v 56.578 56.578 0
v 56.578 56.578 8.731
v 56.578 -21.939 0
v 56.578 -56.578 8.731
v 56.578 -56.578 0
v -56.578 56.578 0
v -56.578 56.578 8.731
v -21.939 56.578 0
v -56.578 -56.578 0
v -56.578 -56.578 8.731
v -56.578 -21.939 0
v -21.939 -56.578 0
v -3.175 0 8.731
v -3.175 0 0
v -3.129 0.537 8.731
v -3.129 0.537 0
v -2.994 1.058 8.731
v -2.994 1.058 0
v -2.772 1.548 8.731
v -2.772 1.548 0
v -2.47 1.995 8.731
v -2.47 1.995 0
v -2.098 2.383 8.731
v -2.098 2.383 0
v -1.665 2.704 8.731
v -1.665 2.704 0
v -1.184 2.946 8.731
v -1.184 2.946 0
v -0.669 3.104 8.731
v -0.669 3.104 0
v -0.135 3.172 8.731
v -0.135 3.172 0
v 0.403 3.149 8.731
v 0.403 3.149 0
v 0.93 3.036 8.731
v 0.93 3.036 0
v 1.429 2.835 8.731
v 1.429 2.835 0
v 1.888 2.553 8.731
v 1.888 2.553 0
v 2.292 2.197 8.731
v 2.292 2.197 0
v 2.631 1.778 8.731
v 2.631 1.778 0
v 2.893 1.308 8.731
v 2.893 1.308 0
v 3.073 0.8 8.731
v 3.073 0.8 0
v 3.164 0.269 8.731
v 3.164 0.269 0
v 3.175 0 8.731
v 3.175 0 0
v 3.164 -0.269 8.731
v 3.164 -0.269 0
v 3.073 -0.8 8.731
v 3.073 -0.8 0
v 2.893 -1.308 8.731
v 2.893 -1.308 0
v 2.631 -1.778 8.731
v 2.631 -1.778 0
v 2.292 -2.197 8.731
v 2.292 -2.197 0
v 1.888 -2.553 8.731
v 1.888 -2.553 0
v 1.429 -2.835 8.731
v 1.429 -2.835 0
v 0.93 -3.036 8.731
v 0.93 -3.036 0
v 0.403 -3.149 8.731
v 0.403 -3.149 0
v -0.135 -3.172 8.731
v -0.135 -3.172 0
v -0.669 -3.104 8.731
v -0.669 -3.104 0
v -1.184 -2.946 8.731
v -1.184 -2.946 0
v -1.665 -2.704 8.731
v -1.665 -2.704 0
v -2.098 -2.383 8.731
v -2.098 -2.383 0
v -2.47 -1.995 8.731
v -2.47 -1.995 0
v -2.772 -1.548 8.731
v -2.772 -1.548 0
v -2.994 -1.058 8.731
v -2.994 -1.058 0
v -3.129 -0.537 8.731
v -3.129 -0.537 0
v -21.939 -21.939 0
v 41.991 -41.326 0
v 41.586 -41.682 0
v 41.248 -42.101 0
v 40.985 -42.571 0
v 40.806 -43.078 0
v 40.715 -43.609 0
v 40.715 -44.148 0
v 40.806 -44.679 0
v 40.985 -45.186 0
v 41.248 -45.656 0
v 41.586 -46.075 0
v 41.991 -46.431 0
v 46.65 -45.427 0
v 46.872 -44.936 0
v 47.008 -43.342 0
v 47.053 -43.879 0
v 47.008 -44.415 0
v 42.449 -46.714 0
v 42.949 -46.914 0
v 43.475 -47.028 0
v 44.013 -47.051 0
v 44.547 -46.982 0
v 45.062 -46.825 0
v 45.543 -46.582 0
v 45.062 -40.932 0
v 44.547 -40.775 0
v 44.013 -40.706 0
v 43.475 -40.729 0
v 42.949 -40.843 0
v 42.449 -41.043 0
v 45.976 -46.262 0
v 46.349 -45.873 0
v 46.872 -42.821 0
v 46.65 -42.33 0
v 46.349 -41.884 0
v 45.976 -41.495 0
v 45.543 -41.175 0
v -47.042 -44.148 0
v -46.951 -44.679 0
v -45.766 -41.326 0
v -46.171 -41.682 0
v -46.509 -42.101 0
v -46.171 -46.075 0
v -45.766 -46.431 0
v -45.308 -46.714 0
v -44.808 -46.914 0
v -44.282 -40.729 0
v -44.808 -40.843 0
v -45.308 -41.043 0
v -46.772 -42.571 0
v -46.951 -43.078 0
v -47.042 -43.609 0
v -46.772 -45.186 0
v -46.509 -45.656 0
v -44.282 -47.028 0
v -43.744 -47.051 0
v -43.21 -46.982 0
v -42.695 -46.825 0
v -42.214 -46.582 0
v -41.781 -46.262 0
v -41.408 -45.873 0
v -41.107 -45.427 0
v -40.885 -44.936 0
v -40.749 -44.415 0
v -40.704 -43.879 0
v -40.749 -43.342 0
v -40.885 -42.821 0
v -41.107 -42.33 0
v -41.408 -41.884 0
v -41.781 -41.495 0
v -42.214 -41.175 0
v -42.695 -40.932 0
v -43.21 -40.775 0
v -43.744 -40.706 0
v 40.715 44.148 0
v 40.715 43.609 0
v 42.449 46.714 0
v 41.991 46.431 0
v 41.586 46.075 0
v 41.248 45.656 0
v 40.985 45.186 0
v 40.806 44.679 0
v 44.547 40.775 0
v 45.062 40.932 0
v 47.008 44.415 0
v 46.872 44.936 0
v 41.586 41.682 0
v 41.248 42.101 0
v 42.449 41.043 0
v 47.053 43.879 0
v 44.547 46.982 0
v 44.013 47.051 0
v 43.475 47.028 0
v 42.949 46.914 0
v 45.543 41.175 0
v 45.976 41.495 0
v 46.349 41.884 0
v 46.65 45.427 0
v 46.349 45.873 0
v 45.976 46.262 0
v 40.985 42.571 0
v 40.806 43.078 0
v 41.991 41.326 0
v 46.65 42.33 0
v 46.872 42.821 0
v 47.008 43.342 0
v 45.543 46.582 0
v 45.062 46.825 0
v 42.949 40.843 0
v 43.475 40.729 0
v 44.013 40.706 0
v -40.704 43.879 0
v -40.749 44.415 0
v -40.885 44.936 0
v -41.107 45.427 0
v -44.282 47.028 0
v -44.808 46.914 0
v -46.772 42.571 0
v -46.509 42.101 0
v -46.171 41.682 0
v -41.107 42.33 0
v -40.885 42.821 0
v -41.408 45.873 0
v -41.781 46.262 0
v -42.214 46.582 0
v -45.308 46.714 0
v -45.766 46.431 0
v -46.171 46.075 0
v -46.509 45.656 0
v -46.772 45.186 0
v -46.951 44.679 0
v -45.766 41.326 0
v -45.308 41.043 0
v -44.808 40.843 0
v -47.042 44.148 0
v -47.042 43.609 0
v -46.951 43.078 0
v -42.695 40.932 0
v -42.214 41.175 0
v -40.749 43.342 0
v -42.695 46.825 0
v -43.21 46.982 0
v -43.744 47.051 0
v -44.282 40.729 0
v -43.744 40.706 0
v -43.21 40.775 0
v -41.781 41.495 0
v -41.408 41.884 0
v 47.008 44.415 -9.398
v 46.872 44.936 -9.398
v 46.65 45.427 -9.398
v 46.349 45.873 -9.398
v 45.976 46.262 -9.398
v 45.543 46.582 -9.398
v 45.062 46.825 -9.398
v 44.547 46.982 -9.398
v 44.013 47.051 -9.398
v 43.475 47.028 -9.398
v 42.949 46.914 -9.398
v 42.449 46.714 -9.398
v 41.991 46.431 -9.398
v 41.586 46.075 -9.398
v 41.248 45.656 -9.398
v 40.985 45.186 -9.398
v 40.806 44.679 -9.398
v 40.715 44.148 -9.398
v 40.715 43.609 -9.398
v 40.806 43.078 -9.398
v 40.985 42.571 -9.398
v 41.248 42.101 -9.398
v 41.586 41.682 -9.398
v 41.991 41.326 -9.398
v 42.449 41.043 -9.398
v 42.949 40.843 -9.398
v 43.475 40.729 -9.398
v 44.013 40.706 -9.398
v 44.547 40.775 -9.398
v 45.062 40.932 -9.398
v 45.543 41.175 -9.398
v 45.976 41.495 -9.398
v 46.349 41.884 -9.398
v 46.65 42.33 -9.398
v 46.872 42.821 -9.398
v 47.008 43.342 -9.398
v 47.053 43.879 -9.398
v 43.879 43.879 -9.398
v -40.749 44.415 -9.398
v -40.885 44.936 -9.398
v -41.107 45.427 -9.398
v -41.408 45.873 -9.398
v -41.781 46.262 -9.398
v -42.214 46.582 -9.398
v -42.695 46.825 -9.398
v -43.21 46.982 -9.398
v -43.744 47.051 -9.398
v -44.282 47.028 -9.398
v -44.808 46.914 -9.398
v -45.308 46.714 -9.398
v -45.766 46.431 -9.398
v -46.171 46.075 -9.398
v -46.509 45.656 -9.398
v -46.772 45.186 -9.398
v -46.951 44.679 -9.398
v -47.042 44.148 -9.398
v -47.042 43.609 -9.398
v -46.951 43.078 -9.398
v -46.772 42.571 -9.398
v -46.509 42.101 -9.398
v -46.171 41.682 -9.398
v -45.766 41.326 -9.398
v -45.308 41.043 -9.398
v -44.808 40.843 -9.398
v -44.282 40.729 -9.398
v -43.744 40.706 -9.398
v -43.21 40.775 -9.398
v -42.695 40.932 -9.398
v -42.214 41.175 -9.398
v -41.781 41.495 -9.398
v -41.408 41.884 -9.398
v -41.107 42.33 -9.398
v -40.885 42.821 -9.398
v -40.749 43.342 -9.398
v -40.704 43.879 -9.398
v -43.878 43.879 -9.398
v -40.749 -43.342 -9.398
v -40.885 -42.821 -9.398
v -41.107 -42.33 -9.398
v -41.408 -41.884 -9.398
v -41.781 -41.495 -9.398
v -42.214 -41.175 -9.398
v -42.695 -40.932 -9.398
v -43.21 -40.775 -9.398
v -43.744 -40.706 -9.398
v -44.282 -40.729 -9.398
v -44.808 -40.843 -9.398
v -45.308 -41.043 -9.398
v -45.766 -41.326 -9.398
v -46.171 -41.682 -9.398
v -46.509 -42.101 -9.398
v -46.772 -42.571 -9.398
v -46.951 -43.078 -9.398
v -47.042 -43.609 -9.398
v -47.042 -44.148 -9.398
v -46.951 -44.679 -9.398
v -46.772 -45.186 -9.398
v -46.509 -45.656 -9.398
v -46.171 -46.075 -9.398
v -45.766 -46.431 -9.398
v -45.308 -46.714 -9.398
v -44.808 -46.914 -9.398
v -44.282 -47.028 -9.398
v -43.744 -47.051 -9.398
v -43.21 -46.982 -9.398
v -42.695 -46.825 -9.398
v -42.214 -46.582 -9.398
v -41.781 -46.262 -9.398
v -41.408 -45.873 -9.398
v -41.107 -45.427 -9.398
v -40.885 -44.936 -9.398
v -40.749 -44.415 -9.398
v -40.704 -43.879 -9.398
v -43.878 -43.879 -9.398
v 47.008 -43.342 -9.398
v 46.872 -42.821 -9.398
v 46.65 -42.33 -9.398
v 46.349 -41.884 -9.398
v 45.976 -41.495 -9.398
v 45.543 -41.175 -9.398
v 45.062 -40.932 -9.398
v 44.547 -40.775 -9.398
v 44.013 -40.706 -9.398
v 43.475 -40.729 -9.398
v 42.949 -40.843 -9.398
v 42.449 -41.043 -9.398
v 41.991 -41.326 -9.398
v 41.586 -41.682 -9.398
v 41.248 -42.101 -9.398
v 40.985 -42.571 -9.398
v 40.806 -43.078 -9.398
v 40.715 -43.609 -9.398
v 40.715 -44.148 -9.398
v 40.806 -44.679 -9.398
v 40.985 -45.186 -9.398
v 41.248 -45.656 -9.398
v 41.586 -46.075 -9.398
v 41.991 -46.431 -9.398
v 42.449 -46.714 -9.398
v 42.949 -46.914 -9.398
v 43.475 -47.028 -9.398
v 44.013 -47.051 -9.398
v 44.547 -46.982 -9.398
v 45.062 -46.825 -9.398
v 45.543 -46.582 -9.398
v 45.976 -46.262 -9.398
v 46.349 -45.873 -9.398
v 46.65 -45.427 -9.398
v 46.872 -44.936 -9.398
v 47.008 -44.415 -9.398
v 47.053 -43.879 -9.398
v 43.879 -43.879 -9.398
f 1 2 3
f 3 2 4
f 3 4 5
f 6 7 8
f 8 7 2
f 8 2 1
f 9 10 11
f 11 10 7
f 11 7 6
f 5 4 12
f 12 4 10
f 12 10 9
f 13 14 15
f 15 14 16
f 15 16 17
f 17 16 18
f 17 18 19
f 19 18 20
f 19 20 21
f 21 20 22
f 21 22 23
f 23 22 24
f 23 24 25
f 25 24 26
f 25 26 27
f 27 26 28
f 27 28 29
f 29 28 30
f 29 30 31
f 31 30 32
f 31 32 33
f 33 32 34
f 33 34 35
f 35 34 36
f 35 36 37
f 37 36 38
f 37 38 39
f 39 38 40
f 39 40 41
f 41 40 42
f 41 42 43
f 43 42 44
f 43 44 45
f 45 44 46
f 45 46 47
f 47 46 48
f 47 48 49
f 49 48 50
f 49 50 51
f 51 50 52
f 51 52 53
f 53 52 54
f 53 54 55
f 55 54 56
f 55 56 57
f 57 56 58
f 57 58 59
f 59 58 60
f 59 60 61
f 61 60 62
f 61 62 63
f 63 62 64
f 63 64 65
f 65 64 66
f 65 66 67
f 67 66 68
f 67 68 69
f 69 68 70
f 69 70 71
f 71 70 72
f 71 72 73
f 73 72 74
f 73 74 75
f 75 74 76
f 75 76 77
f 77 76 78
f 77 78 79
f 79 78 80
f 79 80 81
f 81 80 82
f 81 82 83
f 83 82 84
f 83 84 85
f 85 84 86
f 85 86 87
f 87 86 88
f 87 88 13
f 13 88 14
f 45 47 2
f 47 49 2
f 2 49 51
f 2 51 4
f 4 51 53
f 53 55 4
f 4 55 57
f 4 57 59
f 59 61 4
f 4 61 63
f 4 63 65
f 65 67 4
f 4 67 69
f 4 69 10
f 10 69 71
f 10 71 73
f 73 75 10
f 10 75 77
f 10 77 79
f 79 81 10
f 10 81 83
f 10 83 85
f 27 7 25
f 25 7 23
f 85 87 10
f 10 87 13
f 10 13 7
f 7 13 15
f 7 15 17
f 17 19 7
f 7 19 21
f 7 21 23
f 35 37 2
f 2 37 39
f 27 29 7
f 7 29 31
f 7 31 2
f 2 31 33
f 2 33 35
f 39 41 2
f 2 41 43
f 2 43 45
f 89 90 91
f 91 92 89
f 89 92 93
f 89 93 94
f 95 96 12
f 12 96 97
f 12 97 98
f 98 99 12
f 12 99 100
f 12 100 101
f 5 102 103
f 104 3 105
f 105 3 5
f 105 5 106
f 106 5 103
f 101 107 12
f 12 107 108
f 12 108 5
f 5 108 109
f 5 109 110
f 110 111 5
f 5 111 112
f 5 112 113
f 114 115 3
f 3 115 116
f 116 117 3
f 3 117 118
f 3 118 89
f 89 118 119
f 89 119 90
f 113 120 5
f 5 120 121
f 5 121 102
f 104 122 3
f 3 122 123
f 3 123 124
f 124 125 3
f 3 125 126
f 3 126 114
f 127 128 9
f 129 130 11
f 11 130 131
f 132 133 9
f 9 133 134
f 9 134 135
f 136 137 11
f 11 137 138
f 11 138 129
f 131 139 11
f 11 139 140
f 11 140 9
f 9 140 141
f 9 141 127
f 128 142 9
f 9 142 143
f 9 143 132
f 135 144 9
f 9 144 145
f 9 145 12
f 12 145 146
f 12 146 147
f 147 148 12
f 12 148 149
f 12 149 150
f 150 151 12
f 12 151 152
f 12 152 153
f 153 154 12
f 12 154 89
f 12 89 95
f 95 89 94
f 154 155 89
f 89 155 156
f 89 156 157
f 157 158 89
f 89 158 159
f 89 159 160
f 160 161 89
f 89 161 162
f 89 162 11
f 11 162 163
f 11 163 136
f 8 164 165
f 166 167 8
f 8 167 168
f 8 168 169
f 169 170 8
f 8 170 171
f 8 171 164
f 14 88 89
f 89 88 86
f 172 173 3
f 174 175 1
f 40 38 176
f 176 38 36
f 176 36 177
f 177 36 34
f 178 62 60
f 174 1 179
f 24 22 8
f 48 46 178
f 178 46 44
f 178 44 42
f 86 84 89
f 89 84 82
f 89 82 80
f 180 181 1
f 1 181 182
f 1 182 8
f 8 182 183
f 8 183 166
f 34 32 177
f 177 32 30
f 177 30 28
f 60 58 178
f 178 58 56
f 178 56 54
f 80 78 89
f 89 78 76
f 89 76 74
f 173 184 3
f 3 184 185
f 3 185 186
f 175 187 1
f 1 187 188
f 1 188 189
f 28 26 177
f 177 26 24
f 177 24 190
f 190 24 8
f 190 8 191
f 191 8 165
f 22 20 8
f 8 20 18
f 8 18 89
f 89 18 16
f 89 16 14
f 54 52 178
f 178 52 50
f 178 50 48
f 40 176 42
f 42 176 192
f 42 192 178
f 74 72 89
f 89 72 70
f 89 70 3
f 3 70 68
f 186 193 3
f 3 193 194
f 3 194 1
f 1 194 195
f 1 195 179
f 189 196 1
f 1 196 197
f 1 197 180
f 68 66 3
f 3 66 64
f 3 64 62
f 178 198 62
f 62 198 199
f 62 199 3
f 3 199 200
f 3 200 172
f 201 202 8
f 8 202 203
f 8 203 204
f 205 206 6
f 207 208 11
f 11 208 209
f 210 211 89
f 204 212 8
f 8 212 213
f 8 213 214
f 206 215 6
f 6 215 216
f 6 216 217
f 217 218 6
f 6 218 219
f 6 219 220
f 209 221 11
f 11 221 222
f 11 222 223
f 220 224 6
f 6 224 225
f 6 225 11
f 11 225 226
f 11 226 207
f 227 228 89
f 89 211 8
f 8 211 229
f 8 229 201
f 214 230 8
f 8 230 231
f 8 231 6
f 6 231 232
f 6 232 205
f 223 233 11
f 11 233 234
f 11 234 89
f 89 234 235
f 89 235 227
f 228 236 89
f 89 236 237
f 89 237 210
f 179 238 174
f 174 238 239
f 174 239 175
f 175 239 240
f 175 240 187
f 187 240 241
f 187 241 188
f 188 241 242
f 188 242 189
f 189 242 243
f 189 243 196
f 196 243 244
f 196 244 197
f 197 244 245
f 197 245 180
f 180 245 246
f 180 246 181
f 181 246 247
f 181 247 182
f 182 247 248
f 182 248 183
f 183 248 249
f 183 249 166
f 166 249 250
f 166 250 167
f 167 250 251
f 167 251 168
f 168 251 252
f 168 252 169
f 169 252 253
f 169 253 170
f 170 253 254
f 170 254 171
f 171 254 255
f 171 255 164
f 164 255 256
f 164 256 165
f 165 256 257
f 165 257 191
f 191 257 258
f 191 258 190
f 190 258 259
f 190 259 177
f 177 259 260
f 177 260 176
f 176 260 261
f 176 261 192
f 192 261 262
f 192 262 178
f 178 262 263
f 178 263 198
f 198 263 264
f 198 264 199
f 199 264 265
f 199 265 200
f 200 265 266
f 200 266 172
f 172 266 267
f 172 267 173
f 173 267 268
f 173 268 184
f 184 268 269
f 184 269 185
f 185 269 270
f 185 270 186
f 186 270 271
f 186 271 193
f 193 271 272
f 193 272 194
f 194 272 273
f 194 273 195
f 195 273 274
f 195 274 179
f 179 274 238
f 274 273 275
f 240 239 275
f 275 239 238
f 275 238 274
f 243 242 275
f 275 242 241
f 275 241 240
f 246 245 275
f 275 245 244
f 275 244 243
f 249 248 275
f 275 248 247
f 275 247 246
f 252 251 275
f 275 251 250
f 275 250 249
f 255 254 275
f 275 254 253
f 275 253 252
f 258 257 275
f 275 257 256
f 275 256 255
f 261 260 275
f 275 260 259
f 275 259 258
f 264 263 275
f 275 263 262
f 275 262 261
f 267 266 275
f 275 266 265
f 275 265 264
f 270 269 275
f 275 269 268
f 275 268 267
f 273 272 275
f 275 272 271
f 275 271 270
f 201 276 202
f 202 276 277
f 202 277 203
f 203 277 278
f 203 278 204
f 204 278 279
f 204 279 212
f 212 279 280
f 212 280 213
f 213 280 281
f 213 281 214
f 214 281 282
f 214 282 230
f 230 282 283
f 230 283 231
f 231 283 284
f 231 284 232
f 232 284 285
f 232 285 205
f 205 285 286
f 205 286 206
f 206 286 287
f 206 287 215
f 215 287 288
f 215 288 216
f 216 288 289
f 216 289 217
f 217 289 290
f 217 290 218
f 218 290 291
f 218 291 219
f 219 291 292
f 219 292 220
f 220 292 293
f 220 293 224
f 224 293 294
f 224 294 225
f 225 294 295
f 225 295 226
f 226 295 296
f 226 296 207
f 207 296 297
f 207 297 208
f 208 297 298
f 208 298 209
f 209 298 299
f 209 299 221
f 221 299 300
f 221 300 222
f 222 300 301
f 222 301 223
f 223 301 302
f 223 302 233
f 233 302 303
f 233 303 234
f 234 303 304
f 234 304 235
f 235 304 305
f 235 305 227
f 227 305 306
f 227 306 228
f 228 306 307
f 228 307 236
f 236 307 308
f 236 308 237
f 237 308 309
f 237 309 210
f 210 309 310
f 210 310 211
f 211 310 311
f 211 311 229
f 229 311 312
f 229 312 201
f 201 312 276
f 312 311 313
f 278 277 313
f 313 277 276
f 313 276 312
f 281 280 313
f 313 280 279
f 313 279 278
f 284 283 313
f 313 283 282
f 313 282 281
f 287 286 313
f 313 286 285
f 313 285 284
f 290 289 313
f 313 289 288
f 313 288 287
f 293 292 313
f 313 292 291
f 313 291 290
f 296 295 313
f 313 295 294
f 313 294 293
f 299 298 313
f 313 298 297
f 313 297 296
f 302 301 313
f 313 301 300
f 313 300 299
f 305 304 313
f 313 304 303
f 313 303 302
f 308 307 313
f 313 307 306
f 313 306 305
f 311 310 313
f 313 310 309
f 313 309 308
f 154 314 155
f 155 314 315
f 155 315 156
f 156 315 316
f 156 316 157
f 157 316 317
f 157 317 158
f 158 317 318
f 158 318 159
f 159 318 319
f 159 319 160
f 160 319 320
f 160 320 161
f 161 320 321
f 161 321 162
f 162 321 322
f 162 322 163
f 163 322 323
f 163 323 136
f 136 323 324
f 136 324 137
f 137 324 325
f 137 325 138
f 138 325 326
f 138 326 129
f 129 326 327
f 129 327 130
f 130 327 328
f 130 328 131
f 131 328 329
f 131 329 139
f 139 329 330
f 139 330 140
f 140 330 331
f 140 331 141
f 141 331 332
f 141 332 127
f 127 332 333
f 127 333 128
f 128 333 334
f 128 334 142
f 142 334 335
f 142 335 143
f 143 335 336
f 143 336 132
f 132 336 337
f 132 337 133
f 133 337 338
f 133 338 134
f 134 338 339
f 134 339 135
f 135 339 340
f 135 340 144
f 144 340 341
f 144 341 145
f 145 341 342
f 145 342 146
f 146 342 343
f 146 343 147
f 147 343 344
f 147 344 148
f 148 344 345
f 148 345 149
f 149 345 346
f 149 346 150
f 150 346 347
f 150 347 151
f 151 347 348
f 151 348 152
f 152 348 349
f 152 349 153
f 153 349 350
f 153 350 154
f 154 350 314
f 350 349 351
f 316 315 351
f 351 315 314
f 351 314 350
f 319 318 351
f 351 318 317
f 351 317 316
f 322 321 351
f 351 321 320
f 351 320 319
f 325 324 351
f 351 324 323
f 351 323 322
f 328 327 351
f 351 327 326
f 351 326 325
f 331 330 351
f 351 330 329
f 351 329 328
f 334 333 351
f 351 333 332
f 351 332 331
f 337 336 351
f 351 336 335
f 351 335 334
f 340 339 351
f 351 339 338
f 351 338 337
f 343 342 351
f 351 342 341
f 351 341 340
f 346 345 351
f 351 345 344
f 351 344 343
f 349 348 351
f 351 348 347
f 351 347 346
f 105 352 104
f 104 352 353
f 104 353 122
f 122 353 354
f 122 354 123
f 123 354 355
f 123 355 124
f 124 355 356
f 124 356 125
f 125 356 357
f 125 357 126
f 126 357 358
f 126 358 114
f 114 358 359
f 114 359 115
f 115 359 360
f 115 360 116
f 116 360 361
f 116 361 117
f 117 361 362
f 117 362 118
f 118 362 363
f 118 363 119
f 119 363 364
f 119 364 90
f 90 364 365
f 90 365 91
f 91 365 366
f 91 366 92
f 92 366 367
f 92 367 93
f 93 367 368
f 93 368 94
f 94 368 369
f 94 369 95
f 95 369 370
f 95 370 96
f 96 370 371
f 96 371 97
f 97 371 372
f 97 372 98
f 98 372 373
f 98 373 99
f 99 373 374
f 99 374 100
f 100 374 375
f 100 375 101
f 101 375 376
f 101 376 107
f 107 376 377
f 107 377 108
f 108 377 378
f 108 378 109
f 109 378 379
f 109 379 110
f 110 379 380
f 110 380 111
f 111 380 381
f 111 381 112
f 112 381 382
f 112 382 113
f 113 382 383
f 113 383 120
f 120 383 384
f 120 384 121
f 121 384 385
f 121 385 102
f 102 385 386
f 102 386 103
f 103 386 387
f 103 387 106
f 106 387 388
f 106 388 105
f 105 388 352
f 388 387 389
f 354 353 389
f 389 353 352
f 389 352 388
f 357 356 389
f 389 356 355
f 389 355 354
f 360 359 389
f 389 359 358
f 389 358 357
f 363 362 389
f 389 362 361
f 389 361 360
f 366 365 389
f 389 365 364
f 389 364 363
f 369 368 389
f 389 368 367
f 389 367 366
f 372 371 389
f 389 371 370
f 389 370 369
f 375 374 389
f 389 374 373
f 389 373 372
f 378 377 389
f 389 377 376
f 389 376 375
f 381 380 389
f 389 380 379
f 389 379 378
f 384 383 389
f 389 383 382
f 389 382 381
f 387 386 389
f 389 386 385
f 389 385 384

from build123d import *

# Parameters (mm, degrees)
SKETCH1_W           = 113.157
SKETCH1_H           = 113.157
SKETCH1_R           = 3.175
BOSS_EXTRUDE1_DEPTH = 8.73125
SKETCH1_5_R         = 3.175
BOSS_EXTRUDE4_DEPTH = 9.398


with BuildPart() as part:
    # Sketch1 → Boss-Extrude1 (new body)
    with BuildSketch(Plane.XY):
        Rectangle(SKETCH1_W, SKETCH1_H)
        Circle(SKETCH1_R, mode=Mode.SUBTRACT)
    extrude(amount=BOSS_EXTRUDE1_DEPTH)

    # Sketch1<5> → Boss-Extrude4 (add)
    with BuildSketch(Plane.XY):
        with Locations((-43.8785, 43.8785)):
            Circle(SKETCH1_5_R)
        with Locations((43.8785, 43.8785)):
            Circle(SKETCH1_5_R)
        with Locations((43.8785, -43.8785)):
            Circle(SKETCH1_5_R)
        with Locations((-43.8785, -43.8785)):
            Circle(SKETCH1_5_R)
    extrude(amount=-BOSS_EXTRUDE4_DEPTH)


solid = part.part
